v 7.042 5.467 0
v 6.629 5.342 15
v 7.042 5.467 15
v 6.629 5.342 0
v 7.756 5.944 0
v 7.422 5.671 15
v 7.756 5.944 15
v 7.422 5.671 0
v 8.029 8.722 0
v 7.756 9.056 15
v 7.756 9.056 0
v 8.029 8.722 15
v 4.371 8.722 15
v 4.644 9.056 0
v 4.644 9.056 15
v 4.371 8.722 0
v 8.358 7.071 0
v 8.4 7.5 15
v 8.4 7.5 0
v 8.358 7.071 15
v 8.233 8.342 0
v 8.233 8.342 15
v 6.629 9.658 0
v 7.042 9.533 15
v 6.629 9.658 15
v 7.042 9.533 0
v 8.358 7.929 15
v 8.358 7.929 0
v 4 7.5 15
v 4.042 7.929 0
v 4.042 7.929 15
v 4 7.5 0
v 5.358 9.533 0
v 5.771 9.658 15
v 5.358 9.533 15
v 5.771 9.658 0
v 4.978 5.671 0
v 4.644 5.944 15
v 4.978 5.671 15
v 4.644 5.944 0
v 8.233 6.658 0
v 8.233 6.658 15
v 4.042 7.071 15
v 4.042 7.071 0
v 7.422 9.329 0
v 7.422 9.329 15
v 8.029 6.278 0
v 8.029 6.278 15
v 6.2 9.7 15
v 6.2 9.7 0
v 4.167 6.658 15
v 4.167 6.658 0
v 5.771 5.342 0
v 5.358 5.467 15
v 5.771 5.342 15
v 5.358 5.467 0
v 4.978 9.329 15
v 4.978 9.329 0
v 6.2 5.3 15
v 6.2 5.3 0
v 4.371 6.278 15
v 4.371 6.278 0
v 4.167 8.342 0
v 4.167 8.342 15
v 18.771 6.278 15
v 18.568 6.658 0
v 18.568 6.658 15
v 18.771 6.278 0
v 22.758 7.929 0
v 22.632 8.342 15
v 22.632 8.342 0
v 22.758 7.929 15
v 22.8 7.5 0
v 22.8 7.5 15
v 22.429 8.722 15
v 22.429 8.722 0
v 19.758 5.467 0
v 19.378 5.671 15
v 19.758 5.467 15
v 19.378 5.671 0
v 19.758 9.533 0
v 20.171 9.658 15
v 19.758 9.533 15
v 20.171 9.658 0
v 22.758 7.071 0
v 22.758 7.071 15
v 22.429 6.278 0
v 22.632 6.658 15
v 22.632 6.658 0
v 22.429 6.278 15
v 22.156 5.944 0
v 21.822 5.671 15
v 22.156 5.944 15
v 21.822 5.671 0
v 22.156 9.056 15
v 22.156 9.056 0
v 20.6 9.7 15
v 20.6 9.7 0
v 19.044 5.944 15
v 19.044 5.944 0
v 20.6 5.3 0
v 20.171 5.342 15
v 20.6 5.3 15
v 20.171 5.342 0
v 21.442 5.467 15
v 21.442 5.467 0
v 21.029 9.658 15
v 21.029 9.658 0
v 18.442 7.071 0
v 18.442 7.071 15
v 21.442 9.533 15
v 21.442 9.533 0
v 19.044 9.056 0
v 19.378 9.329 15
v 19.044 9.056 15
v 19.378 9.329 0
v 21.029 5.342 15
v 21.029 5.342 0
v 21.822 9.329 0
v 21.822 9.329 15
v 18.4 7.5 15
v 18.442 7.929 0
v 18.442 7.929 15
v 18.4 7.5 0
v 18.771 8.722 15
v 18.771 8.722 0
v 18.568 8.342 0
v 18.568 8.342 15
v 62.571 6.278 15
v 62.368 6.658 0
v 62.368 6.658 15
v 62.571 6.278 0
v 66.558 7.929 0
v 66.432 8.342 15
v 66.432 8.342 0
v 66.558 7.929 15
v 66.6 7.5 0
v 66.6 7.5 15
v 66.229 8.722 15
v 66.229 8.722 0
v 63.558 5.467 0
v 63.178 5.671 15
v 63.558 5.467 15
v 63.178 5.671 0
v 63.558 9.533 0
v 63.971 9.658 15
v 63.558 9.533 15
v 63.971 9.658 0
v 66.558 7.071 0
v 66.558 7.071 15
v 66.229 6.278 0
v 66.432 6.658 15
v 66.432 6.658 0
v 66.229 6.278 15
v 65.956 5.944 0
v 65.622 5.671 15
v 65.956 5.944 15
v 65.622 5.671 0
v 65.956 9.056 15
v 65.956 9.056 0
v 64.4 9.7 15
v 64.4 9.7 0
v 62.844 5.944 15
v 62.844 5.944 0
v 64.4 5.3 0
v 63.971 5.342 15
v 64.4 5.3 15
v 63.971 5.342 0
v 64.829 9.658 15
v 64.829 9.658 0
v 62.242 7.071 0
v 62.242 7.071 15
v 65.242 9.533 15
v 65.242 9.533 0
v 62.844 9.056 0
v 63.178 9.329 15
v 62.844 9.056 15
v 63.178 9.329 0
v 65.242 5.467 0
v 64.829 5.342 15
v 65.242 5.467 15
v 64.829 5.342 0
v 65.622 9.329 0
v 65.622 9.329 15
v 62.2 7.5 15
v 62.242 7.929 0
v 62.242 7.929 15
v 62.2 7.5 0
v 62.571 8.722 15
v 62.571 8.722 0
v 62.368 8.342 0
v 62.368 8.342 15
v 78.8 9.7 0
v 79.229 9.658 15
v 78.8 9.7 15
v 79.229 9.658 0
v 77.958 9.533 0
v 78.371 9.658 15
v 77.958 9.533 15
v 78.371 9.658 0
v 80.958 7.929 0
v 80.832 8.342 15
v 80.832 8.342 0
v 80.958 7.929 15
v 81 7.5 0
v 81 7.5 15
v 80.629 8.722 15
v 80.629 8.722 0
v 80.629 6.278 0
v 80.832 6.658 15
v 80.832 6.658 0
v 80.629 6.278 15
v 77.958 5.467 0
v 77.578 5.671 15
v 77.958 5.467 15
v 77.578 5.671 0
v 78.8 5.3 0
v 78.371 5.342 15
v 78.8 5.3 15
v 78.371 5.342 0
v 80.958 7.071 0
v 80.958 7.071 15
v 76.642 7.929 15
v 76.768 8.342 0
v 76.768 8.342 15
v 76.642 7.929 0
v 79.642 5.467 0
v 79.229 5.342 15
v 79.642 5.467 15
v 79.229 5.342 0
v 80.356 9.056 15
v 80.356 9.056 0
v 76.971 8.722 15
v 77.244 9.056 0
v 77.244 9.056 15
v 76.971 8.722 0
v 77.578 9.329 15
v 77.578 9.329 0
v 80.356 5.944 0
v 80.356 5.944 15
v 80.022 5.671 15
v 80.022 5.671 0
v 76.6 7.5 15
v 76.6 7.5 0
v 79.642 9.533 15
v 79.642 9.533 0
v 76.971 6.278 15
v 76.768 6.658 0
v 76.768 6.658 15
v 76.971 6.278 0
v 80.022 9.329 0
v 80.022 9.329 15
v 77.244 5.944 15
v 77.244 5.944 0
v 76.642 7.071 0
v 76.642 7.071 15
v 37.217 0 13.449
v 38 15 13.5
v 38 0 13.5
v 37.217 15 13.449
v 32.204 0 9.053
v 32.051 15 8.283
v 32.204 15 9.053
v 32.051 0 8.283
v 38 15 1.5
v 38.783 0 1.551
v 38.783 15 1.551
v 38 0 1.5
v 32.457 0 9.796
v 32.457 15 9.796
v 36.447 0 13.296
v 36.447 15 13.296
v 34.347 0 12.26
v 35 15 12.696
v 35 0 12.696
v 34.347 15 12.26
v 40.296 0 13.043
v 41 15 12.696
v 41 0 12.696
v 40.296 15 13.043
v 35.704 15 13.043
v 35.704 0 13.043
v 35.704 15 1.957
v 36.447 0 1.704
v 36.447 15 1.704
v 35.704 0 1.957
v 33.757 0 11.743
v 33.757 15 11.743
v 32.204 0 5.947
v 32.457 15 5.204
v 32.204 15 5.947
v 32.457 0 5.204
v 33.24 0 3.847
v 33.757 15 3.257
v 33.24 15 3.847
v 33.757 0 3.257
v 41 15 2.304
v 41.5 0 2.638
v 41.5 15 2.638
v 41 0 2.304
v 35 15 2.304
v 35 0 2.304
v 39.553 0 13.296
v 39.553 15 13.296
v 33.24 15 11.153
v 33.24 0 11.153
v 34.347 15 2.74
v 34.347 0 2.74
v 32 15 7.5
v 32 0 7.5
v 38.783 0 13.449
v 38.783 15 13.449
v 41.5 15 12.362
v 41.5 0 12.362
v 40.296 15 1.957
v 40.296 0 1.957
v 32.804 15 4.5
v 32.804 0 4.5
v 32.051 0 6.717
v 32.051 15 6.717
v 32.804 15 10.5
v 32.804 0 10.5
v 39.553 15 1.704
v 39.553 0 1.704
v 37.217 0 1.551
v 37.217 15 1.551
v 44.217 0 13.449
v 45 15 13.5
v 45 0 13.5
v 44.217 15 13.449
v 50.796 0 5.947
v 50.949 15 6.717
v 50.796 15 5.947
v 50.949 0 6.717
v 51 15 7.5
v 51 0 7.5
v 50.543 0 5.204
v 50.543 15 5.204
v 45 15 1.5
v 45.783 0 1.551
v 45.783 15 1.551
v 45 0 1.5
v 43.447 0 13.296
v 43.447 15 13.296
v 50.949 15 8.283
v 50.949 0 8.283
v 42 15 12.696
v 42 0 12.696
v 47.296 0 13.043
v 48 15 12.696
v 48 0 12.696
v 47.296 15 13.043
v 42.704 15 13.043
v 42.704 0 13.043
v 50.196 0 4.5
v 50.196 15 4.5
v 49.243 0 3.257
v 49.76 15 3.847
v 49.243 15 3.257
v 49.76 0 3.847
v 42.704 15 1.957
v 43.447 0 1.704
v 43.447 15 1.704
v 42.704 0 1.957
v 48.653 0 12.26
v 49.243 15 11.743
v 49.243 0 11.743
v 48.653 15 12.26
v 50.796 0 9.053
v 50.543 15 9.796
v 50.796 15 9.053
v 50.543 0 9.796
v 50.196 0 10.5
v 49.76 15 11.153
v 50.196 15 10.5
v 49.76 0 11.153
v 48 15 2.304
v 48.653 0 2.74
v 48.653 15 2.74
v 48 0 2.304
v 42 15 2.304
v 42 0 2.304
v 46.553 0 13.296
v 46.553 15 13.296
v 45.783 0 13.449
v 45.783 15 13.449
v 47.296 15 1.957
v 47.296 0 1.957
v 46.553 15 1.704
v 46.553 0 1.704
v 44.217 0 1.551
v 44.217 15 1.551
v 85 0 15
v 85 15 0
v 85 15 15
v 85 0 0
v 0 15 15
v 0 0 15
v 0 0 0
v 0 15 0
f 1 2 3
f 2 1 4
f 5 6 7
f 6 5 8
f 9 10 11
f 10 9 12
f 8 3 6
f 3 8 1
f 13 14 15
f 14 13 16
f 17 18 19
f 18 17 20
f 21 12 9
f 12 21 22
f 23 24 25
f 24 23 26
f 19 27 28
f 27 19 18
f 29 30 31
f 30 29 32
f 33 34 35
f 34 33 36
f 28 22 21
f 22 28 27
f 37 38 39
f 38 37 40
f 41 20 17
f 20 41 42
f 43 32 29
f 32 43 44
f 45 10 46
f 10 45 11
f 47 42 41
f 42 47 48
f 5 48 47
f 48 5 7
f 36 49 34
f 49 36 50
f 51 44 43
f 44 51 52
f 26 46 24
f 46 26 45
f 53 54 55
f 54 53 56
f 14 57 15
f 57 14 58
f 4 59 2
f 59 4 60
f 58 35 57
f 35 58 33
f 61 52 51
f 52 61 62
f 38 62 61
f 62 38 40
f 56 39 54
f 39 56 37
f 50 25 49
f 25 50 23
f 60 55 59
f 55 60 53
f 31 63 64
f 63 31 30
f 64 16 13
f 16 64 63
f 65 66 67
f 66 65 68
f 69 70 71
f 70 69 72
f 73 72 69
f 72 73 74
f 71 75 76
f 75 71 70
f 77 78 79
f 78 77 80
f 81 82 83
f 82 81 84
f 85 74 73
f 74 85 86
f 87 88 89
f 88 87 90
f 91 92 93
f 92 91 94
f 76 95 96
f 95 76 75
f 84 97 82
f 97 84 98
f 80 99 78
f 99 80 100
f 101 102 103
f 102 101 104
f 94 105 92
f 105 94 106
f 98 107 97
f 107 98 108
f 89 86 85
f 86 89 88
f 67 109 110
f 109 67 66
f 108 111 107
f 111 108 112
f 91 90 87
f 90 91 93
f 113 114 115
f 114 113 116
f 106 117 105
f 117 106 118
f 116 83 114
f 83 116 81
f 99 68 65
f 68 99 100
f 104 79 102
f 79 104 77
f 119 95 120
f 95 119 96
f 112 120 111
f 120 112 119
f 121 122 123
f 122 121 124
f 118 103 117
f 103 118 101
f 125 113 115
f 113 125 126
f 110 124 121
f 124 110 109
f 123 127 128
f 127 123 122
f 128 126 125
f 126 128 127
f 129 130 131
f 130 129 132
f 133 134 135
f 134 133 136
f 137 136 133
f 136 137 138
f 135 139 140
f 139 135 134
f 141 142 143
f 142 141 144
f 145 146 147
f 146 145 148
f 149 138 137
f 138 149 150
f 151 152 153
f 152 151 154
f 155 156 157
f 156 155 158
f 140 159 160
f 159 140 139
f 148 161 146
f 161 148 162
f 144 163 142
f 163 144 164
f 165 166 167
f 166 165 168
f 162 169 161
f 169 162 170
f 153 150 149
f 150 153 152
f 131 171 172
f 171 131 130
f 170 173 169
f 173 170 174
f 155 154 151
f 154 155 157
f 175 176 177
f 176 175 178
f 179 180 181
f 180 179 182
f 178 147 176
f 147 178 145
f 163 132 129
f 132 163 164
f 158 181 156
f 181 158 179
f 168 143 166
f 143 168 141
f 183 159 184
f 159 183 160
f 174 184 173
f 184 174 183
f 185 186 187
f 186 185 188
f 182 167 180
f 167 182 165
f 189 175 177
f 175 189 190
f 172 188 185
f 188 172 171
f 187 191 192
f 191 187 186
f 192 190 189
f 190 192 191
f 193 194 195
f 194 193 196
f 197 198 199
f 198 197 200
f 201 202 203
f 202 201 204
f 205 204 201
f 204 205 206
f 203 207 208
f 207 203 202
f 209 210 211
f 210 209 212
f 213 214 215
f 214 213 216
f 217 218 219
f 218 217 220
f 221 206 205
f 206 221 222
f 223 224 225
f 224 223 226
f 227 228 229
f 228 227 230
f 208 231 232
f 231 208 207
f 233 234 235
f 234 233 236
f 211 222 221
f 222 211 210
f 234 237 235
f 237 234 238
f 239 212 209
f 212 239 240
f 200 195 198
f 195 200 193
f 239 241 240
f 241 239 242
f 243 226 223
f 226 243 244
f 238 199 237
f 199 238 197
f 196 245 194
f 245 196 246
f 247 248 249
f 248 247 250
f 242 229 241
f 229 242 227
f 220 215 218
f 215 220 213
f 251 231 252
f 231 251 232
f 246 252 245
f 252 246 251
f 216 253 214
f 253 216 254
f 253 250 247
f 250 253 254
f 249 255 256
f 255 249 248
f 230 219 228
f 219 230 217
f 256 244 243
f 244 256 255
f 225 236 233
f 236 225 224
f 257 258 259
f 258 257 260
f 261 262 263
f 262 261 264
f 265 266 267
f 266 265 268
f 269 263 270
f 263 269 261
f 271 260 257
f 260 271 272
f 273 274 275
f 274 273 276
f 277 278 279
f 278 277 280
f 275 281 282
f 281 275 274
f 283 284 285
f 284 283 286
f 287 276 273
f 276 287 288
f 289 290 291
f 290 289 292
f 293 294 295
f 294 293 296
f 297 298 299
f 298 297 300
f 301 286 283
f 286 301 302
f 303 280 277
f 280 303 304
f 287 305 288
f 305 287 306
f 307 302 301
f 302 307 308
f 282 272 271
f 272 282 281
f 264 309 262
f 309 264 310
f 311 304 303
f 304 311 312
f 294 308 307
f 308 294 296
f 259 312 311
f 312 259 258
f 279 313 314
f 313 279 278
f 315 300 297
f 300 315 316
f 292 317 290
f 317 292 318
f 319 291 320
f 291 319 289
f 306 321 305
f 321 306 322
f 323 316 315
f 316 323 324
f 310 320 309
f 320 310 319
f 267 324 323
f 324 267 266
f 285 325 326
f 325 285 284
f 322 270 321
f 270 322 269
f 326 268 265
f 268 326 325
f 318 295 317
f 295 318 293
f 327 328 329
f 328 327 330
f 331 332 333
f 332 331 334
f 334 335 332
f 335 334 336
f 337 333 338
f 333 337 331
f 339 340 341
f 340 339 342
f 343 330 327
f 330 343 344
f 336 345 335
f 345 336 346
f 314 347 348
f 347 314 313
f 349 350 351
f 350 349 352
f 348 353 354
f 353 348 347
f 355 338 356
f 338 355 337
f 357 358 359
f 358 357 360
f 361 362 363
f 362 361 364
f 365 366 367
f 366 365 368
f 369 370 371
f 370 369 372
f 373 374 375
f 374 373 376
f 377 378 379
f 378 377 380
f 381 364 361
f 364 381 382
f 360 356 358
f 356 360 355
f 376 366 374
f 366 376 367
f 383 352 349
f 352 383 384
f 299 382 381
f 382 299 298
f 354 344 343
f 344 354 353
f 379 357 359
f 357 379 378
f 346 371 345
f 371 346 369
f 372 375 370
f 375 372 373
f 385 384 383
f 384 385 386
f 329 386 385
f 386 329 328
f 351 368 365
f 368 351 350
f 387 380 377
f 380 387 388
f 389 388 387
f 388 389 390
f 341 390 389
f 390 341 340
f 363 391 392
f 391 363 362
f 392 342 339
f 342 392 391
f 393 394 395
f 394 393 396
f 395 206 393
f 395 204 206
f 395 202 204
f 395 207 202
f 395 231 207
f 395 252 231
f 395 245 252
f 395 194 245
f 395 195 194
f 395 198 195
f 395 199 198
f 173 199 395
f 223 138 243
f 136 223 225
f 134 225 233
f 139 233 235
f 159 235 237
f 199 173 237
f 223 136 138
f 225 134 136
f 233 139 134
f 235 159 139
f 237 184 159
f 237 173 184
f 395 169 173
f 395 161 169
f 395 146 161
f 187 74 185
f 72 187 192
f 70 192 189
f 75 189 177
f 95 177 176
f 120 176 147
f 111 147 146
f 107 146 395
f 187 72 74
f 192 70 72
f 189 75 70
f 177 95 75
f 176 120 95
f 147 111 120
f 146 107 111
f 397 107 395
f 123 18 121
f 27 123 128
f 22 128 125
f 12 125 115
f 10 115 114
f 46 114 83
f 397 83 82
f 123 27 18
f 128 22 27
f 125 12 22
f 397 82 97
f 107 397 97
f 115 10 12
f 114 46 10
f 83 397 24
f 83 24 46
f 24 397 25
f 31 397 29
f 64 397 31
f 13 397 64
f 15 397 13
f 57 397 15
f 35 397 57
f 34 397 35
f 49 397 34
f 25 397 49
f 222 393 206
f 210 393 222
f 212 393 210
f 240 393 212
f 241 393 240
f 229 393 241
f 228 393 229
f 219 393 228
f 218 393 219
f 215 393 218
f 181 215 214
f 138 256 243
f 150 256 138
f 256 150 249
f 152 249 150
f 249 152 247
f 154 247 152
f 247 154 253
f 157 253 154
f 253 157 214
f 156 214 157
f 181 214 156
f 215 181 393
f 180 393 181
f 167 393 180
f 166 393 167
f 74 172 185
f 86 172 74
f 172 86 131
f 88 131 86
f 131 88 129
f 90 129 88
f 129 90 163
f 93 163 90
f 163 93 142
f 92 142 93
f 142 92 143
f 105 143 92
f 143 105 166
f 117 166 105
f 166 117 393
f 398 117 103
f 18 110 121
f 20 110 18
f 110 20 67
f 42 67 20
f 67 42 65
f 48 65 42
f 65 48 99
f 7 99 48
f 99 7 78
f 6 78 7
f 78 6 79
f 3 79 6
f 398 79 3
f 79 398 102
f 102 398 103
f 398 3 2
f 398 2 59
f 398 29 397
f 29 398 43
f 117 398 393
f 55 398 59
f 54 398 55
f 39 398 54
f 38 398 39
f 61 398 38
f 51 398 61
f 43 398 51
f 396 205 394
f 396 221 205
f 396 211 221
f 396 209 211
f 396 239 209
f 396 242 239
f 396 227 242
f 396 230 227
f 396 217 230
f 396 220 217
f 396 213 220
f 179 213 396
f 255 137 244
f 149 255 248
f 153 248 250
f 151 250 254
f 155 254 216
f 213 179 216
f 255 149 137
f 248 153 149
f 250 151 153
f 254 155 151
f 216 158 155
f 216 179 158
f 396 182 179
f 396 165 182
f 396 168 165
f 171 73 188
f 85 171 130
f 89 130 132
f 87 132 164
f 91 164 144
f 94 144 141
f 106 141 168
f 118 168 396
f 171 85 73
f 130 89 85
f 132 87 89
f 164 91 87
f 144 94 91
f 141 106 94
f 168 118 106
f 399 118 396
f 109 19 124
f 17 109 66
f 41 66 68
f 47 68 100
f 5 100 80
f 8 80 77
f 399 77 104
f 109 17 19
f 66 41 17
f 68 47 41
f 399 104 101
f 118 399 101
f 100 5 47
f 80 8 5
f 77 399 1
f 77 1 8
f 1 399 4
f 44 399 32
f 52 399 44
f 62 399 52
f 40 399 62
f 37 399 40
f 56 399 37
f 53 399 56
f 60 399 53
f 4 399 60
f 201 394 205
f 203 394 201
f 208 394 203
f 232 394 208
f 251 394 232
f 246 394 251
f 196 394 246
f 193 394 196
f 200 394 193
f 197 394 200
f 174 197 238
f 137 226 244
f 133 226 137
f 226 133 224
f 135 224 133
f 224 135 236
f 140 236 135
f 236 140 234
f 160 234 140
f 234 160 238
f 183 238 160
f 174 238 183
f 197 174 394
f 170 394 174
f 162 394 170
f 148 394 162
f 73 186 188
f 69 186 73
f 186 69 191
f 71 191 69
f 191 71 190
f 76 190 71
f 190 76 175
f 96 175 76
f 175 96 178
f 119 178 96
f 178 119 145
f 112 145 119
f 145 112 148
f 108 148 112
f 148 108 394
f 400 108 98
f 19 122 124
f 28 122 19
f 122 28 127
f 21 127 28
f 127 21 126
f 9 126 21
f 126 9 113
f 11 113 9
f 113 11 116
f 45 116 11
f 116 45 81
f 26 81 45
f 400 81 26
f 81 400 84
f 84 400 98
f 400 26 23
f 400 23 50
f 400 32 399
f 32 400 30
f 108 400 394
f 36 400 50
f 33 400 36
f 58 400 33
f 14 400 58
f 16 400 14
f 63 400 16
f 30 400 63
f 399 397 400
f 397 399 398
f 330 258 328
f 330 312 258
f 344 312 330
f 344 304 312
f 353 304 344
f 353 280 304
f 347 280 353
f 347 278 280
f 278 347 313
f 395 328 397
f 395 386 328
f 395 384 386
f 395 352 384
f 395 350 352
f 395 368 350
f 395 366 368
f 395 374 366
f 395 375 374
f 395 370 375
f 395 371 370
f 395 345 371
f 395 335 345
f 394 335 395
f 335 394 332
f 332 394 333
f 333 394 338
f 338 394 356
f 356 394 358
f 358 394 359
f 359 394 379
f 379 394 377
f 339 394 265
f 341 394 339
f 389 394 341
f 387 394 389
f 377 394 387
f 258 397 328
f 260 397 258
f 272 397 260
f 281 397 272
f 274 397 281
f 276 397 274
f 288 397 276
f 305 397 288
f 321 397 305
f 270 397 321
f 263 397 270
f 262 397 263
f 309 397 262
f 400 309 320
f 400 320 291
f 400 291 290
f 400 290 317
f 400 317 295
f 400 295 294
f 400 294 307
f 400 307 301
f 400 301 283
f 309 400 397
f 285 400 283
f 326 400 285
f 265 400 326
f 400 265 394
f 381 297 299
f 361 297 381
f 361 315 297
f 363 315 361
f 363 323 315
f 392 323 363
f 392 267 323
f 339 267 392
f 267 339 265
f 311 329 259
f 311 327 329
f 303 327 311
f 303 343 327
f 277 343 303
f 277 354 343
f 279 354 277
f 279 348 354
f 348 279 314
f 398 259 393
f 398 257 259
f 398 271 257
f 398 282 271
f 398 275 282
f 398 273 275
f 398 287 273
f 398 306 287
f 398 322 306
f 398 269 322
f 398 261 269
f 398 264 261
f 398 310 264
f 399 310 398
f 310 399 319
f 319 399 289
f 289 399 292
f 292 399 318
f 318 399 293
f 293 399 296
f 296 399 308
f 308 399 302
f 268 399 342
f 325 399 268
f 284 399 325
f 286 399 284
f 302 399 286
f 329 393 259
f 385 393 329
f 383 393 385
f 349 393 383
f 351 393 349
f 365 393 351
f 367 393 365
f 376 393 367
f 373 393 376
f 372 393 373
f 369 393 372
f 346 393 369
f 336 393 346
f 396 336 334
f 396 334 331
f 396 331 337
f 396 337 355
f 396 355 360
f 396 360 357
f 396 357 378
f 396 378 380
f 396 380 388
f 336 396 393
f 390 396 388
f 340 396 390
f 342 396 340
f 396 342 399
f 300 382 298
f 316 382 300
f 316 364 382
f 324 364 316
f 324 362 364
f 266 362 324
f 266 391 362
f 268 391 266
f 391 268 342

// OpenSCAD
// REFERENCIA COMERCIAL: NAO IMPRIMIR ESTE MODELO
difference(){cube([85,15,15]);for(x=[6.2,20.6,64.4,78.8])translate([x,7.5,-1])cylinder(h=17,r=2.2,$fn=32);
 for(x=[38,45])translate([x,-1,7.5])rotate([-90,0,0])cylinder(h=17,r=6,$fn=48);}
